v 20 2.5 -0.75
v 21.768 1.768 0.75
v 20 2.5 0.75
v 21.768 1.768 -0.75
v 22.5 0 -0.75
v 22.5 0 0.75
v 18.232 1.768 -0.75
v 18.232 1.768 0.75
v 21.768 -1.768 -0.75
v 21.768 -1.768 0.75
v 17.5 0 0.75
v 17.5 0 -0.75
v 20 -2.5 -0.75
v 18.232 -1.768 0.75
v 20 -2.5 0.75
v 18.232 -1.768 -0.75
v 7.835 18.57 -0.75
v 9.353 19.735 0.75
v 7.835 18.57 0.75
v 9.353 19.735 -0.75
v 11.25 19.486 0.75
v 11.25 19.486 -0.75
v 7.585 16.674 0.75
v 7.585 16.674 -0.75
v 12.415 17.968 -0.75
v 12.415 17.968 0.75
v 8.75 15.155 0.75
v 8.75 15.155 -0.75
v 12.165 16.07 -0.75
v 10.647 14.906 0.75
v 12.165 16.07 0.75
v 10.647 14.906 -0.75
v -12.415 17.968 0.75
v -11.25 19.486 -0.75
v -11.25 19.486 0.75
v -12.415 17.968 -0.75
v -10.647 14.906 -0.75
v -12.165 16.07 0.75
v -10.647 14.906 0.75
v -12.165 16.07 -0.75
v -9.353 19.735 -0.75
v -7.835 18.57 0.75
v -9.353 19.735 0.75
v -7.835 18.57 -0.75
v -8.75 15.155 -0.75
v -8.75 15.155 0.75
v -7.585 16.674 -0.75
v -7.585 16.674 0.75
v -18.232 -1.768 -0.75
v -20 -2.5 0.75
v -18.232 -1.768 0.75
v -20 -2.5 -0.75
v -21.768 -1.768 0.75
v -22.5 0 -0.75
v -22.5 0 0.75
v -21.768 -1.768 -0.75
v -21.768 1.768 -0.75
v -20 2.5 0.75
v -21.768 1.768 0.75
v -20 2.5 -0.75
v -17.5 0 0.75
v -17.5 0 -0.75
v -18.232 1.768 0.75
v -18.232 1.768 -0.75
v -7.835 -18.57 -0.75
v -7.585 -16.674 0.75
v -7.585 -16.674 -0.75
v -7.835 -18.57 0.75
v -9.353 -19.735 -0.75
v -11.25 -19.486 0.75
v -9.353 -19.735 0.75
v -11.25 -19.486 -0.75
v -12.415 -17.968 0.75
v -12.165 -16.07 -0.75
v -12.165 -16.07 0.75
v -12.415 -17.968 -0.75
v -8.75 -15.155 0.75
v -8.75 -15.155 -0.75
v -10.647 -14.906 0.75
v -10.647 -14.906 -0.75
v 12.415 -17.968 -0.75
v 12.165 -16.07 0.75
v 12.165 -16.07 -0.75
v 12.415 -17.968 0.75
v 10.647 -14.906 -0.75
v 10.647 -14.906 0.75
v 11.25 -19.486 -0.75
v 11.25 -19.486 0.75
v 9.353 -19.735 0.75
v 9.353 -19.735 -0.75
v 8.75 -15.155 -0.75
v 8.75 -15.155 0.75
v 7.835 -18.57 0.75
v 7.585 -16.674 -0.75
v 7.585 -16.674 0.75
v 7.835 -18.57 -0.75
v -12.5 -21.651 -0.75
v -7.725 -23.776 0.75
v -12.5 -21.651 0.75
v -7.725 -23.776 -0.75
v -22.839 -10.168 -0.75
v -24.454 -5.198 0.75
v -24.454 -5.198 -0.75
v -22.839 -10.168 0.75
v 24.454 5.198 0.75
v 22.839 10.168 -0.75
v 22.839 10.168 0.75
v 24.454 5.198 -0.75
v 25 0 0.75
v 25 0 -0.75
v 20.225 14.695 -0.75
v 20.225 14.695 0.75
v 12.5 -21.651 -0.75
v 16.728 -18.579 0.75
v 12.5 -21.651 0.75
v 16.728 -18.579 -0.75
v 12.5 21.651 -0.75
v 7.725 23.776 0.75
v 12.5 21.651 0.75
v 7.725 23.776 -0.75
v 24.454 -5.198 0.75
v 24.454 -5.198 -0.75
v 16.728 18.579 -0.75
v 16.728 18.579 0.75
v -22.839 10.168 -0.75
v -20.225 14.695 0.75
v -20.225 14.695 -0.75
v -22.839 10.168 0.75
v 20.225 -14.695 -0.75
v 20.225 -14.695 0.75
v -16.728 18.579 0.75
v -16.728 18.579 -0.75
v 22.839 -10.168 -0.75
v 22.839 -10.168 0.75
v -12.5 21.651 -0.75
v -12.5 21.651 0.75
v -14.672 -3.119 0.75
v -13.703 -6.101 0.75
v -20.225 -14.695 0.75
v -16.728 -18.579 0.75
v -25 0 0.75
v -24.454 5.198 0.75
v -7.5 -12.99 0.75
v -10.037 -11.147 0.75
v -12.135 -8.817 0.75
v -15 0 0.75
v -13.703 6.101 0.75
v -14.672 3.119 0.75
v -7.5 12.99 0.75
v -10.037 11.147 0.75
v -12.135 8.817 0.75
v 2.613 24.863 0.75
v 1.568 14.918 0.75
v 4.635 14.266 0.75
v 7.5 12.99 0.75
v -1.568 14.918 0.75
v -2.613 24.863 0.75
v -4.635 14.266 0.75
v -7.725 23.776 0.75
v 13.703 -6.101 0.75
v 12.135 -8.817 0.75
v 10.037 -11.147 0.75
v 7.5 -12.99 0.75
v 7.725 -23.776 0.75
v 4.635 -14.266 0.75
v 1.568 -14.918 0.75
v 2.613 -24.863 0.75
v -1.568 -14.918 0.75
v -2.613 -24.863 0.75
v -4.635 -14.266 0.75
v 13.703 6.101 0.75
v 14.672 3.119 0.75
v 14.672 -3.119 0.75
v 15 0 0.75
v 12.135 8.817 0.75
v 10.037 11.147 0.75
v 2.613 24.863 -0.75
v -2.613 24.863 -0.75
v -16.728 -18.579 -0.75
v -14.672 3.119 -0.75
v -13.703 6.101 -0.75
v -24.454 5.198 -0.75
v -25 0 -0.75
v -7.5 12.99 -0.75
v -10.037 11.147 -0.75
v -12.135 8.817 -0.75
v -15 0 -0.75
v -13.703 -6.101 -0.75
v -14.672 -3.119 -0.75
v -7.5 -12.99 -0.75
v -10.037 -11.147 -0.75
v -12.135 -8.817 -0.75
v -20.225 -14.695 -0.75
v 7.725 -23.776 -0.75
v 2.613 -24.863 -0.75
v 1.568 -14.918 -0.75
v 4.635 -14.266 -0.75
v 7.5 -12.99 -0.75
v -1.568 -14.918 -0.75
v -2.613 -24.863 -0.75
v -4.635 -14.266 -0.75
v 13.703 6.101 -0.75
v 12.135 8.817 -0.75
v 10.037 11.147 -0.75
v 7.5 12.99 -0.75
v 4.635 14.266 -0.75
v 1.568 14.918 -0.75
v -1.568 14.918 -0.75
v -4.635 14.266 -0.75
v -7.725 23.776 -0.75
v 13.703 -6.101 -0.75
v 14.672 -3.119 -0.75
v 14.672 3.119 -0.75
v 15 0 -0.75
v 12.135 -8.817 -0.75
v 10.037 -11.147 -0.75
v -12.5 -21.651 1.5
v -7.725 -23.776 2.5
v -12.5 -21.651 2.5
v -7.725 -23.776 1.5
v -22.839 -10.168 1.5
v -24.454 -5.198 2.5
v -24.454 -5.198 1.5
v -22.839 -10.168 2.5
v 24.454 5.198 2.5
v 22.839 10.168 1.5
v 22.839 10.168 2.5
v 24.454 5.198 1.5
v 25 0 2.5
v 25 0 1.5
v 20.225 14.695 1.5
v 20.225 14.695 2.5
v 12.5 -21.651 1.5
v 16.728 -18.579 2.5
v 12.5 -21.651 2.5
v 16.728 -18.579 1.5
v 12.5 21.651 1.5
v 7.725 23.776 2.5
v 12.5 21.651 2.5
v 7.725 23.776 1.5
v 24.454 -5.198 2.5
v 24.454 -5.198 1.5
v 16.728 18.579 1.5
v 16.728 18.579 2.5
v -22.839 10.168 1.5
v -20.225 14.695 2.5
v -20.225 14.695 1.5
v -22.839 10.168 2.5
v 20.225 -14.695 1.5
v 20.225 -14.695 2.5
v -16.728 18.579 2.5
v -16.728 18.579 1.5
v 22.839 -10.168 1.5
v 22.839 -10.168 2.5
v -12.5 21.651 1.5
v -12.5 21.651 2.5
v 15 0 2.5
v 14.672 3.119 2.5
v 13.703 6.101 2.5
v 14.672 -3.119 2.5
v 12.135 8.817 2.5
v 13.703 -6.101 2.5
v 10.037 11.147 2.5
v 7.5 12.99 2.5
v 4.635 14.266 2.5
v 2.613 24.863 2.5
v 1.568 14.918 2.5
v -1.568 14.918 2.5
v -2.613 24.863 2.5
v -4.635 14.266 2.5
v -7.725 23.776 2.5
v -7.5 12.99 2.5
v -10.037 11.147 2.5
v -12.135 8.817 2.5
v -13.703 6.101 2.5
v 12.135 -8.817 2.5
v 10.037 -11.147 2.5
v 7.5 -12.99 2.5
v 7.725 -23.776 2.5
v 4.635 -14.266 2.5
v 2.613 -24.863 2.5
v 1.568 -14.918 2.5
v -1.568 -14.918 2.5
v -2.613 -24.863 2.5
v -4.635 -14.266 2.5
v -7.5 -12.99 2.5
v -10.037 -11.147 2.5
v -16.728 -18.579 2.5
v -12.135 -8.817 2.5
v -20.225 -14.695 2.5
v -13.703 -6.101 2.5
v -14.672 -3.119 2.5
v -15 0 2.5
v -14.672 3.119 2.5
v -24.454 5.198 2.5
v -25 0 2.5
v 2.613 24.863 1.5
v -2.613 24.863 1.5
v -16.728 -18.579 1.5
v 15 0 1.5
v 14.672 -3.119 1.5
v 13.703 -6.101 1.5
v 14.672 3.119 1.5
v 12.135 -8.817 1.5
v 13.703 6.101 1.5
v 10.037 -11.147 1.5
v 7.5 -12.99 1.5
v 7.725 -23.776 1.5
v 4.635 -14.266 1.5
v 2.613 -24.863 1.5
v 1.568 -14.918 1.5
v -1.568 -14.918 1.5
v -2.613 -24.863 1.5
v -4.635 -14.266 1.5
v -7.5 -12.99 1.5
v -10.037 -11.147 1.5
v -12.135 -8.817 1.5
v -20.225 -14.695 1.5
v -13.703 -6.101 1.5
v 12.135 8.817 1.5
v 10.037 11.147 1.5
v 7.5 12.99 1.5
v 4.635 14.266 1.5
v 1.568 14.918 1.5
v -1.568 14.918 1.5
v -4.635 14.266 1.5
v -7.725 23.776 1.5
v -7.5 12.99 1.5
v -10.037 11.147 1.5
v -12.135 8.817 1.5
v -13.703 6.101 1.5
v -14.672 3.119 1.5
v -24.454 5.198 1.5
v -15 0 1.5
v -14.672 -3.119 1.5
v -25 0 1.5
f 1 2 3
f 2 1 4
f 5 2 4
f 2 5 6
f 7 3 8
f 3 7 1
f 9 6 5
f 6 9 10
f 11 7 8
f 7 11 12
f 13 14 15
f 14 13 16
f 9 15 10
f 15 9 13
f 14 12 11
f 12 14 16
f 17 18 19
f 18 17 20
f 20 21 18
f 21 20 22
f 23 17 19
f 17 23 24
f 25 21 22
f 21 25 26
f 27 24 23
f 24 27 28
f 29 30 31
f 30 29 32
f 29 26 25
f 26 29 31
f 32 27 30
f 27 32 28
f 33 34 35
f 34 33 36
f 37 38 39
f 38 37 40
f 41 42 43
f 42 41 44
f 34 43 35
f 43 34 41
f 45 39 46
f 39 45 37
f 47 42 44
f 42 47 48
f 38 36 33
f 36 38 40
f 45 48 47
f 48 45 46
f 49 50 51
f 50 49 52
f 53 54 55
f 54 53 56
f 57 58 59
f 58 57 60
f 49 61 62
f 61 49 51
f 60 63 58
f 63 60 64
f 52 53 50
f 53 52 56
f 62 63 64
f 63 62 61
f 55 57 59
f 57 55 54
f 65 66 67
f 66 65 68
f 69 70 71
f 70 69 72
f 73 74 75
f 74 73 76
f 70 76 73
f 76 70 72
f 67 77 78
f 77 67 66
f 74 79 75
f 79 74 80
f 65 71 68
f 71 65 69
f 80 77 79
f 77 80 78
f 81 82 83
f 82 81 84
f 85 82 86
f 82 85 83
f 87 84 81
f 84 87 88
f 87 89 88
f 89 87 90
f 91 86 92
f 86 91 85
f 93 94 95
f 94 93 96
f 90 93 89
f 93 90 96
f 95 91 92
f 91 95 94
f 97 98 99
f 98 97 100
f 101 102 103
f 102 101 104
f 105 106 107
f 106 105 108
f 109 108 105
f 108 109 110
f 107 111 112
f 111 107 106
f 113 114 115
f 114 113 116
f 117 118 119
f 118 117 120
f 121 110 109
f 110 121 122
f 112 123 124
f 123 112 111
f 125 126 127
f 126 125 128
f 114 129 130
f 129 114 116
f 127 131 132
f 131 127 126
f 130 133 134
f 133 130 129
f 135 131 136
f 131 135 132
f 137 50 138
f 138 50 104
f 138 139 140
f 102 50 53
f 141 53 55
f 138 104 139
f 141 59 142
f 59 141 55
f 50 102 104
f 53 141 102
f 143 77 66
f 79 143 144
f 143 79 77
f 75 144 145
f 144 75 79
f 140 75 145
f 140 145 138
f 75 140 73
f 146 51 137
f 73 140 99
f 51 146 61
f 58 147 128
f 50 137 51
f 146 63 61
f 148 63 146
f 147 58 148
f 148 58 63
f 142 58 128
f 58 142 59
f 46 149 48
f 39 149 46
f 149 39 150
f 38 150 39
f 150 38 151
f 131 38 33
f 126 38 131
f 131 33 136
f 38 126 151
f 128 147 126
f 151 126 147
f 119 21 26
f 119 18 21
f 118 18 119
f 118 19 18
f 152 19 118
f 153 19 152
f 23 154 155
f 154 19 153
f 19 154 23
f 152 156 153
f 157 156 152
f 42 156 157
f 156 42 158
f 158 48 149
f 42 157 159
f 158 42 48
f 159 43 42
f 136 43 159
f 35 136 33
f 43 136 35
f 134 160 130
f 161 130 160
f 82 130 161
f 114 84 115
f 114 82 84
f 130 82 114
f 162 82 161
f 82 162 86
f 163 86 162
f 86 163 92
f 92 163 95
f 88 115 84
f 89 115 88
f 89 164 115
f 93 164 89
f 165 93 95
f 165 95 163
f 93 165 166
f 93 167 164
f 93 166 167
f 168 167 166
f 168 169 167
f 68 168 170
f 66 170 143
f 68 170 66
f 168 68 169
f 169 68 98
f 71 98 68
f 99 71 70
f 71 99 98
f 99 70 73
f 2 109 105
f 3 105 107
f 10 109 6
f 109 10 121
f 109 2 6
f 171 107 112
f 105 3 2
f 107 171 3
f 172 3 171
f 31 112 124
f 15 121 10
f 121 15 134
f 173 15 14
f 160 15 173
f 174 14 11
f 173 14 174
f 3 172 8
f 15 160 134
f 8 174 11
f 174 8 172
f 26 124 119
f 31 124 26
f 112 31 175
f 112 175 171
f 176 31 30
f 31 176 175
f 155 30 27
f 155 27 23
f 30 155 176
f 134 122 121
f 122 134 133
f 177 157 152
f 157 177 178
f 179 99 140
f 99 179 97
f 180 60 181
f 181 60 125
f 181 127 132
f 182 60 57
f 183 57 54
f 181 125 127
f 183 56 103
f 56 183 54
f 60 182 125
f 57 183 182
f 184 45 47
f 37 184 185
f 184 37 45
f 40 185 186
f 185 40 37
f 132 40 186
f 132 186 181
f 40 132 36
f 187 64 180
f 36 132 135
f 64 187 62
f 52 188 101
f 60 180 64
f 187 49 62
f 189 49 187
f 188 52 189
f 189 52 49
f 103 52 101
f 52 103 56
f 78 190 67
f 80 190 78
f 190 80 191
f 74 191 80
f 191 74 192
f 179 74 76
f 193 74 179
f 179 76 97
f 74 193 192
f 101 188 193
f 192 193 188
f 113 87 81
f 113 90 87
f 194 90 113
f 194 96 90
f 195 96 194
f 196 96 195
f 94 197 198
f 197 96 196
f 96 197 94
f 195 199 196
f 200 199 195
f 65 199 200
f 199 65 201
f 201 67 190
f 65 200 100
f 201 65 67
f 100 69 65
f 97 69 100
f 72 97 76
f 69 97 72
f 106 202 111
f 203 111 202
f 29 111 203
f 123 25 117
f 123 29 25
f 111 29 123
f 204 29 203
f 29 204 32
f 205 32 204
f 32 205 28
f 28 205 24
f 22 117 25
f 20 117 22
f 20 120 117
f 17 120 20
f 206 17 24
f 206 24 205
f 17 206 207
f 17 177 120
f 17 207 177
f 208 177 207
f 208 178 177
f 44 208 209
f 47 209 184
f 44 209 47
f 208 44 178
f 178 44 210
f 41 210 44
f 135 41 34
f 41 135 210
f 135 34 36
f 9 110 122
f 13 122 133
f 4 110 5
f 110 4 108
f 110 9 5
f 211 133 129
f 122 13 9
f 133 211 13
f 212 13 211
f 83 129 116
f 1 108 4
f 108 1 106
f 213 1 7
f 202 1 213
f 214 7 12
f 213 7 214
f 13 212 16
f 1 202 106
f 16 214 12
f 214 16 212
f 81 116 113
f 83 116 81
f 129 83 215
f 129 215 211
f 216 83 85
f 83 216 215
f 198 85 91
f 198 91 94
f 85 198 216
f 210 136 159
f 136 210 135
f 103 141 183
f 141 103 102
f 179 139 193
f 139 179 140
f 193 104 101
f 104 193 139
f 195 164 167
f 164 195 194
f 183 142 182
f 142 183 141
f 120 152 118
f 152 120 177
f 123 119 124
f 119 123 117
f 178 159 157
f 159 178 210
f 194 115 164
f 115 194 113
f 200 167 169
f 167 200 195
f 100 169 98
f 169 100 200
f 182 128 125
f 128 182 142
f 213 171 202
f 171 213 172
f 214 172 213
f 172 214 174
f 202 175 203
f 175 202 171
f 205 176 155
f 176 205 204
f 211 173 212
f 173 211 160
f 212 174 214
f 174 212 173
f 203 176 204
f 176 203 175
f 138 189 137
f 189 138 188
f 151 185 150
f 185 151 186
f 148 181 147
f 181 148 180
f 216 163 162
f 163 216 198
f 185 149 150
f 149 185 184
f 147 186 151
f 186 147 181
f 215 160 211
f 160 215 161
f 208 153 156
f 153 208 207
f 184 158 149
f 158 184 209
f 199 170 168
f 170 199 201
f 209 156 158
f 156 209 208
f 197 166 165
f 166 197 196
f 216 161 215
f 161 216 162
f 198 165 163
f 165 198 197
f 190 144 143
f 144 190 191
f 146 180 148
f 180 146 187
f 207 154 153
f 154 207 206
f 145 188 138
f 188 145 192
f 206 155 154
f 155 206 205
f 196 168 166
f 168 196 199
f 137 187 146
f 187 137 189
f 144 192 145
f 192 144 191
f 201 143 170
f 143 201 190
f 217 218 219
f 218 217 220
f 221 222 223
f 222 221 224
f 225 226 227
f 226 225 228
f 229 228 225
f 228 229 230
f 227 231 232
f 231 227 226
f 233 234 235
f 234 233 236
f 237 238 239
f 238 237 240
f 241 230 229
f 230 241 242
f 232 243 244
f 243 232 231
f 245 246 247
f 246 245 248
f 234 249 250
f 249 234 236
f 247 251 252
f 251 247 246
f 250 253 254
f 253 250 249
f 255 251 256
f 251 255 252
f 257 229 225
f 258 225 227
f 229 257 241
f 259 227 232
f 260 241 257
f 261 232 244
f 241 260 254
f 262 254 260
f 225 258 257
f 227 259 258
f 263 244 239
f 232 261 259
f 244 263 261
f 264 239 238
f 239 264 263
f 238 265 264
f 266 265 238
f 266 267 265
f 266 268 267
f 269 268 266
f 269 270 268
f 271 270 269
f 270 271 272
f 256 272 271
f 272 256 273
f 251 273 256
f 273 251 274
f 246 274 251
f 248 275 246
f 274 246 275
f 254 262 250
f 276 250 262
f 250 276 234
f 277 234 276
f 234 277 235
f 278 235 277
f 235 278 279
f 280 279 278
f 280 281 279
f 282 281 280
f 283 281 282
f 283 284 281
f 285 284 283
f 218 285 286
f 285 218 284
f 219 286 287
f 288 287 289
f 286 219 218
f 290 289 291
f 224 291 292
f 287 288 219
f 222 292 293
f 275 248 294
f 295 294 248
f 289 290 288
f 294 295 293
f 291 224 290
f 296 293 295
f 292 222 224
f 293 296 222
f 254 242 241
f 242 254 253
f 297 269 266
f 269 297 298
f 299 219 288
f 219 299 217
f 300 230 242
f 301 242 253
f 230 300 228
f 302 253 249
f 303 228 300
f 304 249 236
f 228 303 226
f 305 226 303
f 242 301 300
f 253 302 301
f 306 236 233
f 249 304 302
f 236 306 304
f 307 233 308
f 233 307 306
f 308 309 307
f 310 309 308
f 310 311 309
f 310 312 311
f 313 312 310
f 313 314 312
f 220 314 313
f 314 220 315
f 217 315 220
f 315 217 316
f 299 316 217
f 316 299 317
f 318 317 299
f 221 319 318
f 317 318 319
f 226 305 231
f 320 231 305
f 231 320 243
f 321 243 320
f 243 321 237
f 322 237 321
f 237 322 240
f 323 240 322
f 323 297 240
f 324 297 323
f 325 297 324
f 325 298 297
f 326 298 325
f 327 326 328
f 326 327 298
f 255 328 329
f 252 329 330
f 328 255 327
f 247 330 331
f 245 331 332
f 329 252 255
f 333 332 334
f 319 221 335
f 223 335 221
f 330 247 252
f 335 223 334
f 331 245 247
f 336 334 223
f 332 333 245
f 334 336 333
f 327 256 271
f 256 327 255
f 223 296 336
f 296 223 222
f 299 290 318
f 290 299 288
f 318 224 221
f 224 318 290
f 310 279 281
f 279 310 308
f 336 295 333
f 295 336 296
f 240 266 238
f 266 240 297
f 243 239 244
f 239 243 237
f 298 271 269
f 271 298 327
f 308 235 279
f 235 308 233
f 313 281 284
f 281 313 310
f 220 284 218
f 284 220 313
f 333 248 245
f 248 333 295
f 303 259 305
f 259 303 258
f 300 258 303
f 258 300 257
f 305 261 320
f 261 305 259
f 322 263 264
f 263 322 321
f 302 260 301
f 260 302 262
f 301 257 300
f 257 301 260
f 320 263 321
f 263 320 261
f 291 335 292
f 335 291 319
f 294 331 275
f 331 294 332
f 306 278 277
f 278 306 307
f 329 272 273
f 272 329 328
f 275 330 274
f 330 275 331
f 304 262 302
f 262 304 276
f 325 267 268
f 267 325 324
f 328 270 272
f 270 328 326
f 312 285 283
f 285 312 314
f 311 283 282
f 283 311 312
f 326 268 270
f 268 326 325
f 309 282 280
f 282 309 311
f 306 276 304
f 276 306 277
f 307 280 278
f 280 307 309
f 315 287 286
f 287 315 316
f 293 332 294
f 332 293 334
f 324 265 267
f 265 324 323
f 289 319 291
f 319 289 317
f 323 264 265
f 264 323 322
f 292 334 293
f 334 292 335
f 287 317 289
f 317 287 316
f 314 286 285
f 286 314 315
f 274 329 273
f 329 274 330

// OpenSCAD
// Parameters for flange plate
plate_thickness = 1.5; // Adjusted thickness to match the original model
outer_diameter = 50; // Outer diameter of the flange plate
inner_diameter = 30; // Inner diameter of the central hole
bolt_hole_diameter = 5; // Diameter of the bolt holes
bolt_hole_count = 6; // Adjusted number of bolt holes to match the original model
bolt_hole_radius = 20; // Radius of the circle on which bolt holes are positioned

module flange_plate() {
    difference() {
        // Create the main plate
        cylinder(h = plate_thickness, d = outer_diameter, center = true);
        
        // Create the central hole
        cylinder(h = plate_thickness + 1, d = inner_diameter, center = true);
        
        // Create the bolt holes
        for (i = [0:bolt_hole_count-1]) {
            rotate([0, 0, i * 360 / bolt_hole_count])
                translate([bolt_hole_radius, 0, 0])
                cylinder(h = plate_thickness + 1, d = bolt_hole_diameter, center = true);
        }
    }
}

// Parameters for spacer ring
spacer_ring_thickness = 1; // Adjusted thickness to match the original model
spacer_ring_outer_diameter = 50; // Outer diameter of the spacer ring
spacer_ring_inner_diameter = 30; // Inner diameter of the spacer ring

module spacer_ring() {
    difference() {
        // Create the main ring
        cylinder(h = spacer_ring_thickness, d = spacer_ring_outer_diameter, center = true);
        
        // Create the central hole
        cylinder(h = spacer_ring_thickness + 1, d = spacer_ring_inner_diameter, center = true);
    }
}

// Render the flange plate and spacer ring
flange_plate();
translate([0, 0, plate_thickness + 0.5]) spacer_ring();
